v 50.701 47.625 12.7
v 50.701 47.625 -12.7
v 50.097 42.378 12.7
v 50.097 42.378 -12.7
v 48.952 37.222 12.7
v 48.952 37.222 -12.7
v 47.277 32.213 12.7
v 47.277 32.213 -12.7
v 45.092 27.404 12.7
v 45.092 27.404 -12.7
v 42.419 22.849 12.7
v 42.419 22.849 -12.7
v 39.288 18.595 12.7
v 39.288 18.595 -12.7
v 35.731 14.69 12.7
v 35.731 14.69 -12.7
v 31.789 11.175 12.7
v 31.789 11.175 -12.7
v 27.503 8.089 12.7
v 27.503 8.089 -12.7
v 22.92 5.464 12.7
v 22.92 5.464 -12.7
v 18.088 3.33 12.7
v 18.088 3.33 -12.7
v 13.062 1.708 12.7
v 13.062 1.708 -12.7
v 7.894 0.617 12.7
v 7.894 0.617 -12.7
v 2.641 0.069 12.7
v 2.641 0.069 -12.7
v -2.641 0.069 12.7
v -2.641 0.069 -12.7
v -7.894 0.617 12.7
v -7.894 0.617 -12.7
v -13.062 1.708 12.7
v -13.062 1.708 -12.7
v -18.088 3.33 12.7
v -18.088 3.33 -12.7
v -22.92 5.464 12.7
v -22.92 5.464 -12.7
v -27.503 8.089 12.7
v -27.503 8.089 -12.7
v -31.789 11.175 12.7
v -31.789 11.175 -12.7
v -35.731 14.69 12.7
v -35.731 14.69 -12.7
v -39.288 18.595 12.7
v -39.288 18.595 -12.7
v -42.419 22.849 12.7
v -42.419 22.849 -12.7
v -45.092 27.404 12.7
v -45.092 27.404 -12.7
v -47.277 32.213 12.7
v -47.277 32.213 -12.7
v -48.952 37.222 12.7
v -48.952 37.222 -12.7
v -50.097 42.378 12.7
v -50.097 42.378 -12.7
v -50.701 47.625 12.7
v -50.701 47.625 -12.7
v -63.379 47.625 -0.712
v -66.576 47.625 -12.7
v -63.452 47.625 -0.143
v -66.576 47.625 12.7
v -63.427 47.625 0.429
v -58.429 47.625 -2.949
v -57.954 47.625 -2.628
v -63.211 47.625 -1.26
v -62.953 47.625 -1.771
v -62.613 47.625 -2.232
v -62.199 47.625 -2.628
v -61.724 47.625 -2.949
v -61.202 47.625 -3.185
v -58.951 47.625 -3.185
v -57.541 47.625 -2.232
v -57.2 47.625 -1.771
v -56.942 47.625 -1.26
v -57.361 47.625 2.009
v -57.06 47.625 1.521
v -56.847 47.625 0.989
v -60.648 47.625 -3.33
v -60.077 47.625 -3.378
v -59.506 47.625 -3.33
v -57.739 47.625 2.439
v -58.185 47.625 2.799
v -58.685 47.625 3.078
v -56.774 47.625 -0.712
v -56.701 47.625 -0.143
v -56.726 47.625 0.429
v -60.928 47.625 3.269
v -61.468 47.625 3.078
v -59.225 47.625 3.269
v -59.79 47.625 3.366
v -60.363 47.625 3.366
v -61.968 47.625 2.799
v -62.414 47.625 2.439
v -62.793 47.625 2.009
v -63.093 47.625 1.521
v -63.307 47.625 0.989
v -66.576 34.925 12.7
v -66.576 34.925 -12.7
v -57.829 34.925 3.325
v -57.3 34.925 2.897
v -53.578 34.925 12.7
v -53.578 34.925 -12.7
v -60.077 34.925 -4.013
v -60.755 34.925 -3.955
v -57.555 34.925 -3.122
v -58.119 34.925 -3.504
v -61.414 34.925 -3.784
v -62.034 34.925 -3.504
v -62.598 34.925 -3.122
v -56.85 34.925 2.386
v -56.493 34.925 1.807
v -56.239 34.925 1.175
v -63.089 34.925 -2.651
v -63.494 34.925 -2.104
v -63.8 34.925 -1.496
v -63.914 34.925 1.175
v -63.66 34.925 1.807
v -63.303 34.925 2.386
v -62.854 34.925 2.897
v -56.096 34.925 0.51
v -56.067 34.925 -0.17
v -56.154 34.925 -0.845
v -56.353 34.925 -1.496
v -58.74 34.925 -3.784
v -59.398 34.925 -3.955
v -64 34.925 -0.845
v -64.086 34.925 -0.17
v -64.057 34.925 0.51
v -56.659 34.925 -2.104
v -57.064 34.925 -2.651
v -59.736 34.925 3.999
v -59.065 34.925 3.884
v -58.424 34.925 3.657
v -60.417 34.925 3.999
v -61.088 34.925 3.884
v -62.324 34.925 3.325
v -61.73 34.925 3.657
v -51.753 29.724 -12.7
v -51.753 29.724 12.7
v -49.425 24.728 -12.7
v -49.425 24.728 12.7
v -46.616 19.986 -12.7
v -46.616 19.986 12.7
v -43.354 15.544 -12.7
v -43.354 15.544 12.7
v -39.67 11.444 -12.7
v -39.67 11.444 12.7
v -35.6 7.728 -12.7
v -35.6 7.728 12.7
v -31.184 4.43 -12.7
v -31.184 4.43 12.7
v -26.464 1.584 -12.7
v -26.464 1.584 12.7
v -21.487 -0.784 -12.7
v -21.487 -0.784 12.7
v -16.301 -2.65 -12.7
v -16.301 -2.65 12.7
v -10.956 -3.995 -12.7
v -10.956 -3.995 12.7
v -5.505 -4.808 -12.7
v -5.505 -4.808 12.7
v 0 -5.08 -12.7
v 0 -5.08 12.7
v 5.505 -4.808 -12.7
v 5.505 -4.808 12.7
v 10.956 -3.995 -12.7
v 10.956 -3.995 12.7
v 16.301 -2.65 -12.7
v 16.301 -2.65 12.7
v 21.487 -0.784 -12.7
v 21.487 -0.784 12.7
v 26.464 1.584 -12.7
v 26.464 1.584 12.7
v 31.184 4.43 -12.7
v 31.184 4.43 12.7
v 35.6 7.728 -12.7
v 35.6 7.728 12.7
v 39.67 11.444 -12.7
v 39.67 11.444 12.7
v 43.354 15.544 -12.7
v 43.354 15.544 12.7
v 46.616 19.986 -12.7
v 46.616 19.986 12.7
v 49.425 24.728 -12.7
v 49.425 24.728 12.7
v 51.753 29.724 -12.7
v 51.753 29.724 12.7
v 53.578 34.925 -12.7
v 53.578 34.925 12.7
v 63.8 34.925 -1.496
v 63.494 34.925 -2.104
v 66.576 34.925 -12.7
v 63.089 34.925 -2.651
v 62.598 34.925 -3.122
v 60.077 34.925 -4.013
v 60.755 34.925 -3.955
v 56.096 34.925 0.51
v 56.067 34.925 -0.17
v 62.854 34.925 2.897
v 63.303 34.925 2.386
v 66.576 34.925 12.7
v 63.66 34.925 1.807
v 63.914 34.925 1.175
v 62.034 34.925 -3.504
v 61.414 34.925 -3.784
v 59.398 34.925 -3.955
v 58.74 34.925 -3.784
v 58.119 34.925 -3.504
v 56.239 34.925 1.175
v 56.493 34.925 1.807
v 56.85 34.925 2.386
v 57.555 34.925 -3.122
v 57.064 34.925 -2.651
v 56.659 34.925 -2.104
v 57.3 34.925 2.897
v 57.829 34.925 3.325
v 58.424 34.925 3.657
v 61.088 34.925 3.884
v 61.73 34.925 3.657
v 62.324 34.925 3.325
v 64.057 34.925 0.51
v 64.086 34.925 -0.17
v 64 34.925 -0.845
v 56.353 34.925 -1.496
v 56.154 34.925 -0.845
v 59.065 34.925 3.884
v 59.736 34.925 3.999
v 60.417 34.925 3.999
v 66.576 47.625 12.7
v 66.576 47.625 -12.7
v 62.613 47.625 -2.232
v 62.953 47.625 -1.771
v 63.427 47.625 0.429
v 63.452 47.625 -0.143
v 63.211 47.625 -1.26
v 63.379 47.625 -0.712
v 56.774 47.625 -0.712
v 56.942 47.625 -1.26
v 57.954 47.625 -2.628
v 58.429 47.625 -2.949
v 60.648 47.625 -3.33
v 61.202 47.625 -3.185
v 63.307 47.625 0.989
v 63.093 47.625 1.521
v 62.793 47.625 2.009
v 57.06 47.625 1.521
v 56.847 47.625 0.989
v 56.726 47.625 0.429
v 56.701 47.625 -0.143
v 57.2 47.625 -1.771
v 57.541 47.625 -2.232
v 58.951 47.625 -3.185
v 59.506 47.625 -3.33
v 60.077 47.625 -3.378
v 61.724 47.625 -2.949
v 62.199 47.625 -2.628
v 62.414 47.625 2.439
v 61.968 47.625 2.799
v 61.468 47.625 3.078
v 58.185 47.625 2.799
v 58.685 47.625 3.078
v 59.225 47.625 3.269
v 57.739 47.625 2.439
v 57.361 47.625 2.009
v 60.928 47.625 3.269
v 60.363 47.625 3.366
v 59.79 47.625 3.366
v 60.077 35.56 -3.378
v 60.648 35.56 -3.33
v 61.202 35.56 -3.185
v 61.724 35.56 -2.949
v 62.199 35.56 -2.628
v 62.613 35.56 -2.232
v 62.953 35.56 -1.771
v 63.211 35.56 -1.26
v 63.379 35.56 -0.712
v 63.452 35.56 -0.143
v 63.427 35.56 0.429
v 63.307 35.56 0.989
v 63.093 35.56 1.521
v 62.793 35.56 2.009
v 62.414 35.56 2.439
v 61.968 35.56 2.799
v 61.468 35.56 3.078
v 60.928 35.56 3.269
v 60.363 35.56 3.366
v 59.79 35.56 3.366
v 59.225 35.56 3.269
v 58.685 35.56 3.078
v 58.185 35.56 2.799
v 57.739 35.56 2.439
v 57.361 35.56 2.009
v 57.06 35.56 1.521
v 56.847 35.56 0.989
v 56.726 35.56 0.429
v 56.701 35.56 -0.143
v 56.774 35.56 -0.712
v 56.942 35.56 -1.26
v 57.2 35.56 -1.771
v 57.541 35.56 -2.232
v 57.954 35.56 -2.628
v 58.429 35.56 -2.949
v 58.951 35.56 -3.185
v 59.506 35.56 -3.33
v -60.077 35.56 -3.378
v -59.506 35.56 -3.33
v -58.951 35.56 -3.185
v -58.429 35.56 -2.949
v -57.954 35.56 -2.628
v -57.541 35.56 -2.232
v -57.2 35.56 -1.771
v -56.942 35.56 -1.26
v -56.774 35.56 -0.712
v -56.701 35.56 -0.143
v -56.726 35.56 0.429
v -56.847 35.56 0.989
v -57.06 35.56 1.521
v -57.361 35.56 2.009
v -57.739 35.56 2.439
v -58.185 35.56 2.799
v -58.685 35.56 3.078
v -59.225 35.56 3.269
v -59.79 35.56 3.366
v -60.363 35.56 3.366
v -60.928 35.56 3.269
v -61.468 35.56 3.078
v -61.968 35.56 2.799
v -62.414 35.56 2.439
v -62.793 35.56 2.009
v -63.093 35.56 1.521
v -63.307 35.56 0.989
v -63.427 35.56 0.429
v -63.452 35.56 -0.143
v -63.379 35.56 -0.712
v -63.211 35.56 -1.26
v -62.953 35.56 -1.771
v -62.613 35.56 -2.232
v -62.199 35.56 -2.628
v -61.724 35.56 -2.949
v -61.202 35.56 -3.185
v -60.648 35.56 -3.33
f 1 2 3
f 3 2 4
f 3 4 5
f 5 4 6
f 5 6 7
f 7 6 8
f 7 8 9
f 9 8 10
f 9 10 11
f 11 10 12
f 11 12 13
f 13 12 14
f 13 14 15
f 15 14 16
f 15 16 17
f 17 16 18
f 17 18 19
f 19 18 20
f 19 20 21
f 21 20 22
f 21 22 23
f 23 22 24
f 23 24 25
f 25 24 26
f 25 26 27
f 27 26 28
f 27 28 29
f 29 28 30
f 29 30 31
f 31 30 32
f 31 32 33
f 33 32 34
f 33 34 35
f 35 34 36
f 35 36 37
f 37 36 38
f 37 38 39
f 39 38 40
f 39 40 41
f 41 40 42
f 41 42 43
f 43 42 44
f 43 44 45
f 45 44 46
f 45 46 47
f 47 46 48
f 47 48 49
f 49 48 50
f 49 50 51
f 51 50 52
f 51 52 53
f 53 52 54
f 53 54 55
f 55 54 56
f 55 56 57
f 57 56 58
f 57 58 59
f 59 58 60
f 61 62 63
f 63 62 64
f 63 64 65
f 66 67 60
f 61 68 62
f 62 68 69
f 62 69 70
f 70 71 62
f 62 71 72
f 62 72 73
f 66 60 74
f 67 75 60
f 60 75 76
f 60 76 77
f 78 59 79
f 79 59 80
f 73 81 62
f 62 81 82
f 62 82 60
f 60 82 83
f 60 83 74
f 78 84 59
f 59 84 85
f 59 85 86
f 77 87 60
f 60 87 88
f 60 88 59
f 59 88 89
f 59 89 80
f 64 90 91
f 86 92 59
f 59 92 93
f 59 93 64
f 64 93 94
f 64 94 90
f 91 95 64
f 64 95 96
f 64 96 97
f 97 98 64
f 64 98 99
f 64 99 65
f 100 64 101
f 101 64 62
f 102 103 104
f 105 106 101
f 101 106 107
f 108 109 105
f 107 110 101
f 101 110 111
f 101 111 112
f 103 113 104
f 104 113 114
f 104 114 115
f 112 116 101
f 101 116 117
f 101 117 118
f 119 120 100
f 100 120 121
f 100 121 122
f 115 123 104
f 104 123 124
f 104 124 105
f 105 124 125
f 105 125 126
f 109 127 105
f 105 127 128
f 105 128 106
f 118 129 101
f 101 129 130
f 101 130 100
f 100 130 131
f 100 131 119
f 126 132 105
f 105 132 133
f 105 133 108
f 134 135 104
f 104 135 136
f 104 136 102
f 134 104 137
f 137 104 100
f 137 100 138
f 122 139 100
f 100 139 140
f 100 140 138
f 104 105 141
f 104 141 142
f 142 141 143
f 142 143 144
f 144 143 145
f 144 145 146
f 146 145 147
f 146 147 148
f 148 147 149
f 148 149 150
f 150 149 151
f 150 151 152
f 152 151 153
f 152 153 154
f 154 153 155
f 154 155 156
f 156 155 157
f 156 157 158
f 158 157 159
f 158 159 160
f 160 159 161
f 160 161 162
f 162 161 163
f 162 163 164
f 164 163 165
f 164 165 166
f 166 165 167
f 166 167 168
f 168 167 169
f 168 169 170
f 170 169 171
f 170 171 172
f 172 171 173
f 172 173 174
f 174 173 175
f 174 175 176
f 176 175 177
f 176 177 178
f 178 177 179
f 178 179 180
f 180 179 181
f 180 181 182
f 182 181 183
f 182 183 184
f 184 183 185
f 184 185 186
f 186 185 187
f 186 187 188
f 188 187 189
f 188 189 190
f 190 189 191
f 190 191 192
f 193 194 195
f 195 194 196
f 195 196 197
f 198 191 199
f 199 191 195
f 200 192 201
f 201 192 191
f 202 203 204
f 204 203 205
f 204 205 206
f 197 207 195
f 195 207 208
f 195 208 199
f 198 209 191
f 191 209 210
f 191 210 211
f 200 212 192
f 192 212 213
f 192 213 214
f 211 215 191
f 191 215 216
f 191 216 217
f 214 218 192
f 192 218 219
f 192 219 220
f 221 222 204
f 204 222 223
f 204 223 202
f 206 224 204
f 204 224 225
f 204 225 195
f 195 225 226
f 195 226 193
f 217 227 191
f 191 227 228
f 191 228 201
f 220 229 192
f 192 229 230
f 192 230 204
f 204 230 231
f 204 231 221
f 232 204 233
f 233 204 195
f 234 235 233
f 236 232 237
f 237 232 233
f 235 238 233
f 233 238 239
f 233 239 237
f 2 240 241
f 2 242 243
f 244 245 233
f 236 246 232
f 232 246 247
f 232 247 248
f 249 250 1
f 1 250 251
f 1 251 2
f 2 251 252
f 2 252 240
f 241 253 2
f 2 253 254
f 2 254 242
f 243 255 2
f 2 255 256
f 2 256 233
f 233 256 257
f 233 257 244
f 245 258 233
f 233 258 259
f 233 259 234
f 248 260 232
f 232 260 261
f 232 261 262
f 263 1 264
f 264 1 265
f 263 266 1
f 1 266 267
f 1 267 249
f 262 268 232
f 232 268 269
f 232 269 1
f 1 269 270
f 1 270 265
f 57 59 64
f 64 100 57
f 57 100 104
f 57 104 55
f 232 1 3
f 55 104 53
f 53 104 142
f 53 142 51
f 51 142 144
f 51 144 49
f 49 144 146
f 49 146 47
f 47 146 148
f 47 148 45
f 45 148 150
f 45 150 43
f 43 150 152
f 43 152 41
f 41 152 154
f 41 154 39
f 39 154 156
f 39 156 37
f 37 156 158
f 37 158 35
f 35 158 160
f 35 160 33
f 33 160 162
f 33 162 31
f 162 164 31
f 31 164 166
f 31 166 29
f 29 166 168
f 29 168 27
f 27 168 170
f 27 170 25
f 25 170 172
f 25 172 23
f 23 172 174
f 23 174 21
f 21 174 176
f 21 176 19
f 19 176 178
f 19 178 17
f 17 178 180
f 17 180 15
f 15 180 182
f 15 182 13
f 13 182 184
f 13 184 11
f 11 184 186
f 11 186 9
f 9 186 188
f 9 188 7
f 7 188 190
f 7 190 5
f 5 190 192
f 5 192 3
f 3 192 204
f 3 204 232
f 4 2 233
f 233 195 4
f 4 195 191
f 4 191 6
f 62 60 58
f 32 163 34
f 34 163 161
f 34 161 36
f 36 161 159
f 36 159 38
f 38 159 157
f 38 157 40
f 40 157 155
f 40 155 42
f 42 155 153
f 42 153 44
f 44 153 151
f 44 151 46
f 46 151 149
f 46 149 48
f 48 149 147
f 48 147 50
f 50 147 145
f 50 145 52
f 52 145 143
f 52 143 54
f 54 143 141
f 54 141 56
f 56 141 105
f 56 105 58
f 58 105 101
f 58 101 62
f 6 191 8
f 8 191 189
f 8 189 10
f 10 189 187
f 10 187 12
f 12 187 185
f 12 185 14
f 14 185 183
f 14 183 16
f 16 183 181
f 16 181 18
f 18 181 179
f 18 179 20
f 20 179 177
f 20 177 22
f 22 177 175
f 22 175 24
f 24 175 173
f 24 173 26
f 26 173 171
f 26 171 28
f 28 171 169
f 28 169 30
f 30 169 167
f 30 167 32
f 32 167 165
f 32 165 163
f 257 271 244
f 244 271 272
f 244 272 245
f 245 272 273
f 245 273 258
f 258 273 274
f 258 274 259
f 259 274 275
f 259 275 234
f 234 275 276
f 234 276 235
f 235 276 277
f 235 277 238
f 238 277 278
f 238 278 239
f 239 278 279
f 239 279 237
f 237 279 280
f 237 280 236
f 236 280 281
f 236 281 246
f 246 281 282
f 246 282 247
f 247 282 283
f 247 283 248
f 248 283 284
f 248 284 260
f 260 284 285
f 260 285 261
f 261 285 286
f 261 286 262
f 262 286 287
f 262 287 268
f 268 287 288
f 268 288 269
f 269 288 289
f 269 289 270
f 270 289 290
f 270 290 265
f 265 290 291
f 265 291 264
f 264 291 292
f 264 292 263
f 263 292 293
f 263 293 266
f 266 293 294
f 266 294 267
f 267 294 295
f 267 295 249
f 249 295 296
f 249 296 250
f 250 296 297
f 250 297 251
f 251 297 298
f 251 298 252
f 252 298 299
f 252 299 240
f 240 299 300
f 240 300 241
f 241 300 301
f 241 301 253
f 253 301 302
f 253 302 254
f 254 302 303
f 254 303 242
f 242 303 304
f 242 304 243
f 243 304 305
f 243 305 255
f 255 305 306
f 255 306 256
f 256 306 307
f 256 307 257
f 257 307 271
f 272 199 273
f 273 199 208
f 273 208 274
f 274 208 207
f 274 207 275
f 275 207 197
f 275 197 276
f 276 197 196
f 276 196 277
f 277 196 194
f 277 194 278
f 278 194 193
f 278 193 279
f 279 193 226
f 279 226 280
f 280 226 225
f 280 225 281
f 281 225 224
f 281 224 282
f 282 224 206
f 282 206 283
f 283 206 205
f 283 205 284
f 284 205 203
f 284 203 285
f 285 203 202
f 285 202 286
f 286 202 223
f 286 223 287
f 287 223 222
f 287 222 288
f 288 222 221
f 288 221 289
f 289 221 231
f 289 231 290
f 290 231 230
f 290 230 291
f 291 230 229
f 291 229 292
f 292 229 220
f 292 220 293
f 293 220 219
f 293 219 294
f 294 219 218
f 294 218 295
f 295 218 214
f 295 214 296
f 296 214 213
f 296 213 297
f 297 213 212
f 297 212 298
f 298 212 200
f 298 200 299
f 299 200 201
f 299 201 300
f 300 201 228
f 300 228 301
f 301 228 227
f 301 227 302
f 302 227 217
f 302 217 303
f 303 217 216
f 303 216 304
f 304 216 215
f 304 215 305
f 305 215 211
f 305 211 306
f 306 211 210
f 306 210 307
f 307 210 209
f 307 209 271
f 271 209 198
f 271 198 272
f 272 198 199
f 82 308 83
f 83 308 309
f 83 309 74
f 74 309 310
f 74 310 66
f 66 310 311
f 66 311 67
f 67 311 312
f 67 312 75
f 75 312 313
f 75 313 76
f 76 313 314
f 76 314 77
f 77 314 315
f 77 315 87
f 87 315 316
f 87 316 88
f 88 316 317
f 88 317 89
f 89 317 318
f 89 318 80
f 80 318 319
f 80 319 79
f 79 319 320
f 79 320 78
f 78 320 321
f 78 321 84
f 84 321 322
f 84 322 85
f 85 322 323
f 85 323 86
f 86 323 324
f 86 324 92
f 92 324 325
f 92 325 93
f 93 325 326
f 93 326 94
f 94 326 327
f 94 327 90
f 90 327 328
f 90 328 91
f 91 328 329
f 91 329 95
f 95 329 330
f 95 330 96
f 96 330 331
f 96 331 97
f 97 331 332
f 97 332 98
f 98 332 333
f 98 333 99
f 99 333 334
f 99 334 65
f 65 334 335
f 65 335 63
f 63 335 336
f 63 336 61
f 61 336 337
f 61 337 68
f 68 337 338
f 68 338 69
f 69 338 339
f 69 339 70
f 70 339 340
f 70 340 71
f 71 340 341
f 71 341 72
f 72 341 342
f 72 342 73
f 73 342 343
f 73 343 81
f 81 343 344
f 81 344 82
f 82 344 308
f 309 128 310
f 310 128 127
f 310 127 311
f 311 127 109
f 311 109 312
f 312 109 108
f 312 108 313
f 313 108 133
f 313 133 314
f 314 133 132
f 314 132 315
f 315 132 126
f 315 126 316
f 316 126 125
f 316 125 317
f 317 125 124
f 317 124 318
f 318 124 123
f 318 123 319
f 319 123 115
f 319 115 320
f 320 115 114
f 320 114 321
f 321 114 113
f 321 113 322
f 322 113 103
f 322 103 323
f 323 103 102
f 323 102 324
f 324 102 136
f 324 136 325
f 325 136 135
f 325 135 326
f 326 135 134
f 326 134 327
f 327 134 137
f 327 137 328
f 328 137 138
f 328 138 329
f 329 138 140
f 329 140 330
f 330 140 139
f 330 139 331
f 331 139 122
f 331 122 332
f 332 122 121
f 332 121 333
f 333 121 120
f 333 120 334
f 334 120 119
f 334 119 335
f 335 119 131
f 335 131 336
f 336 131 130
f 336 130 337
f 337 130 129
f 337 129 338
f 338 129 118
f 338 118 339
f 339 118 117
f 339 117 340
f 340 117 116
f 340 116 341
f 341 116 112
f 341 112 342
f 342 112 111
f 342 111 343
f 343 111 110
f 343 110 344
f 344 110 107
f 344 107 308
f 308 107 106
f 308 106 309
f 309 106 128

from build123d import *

# Parameters (mm, degrees)
BOSS_EXTRUDE1_DEPTH               = 12.7
F_1_4_CLEARANCE_HOLE1_D           = 6.7564
F_1_4_CLEARANCE_HOLE1_CSINK_D     = 8.0264
F_1_4_CLEARANCE_HOLE1_CSINK_ANGLE = 90


with BuildPart() as part:
    # Sketch1 → Boss-Extrude1 (new, symmetric)
    with BuildSketch(Plane.XY):
        with BuildLine():
            Line((-50.700684167, 47.625), (-66.575684167, 47.625))
            Line((-66.575684167, 47.625), (-66.575684167, 34.925))
            Line((-66.575684167, 34.925), (-53.577595831, 34.925))
            ThreePointArc((-53.577595831, 34.925), (0, -5.08), (53.577595831, 34.925))
            Line((53.577595831, 34.925), (66.575684167, 34.925))
            Line((66.575684167, 34.925), (66.575684167, 47.625))
            Line((66.575684167, 47.625), (50.700684167, 47.625))
            ThreePointArc((50.700684167, 47.625), (0, 0), (-50.700684167, 47.625))
        make_face()
    extrude(amount=BOSS_EXTRUDE1_DEPTH, both=True)

    # 1/4 Clearance Hole1 (through all)
    with Locations(Plane(origin=(0, 34.925, 0), x_dir=(-1, 0, 0), z_dir=(0, -1, 0))):
        with Locations((60.076639999, 0), (-60.076639999, 0)):
            CounterSinkHole(F_1_4_CLEARANCE_HOLE1_D / 2, F_1_4_CLEARANCE_HOLE1_CSINK_D / 2, counter_sink_angle=F_1_4_CLEARANCE_HOLE1_CSINK_ANGLE)


solid = part.part
